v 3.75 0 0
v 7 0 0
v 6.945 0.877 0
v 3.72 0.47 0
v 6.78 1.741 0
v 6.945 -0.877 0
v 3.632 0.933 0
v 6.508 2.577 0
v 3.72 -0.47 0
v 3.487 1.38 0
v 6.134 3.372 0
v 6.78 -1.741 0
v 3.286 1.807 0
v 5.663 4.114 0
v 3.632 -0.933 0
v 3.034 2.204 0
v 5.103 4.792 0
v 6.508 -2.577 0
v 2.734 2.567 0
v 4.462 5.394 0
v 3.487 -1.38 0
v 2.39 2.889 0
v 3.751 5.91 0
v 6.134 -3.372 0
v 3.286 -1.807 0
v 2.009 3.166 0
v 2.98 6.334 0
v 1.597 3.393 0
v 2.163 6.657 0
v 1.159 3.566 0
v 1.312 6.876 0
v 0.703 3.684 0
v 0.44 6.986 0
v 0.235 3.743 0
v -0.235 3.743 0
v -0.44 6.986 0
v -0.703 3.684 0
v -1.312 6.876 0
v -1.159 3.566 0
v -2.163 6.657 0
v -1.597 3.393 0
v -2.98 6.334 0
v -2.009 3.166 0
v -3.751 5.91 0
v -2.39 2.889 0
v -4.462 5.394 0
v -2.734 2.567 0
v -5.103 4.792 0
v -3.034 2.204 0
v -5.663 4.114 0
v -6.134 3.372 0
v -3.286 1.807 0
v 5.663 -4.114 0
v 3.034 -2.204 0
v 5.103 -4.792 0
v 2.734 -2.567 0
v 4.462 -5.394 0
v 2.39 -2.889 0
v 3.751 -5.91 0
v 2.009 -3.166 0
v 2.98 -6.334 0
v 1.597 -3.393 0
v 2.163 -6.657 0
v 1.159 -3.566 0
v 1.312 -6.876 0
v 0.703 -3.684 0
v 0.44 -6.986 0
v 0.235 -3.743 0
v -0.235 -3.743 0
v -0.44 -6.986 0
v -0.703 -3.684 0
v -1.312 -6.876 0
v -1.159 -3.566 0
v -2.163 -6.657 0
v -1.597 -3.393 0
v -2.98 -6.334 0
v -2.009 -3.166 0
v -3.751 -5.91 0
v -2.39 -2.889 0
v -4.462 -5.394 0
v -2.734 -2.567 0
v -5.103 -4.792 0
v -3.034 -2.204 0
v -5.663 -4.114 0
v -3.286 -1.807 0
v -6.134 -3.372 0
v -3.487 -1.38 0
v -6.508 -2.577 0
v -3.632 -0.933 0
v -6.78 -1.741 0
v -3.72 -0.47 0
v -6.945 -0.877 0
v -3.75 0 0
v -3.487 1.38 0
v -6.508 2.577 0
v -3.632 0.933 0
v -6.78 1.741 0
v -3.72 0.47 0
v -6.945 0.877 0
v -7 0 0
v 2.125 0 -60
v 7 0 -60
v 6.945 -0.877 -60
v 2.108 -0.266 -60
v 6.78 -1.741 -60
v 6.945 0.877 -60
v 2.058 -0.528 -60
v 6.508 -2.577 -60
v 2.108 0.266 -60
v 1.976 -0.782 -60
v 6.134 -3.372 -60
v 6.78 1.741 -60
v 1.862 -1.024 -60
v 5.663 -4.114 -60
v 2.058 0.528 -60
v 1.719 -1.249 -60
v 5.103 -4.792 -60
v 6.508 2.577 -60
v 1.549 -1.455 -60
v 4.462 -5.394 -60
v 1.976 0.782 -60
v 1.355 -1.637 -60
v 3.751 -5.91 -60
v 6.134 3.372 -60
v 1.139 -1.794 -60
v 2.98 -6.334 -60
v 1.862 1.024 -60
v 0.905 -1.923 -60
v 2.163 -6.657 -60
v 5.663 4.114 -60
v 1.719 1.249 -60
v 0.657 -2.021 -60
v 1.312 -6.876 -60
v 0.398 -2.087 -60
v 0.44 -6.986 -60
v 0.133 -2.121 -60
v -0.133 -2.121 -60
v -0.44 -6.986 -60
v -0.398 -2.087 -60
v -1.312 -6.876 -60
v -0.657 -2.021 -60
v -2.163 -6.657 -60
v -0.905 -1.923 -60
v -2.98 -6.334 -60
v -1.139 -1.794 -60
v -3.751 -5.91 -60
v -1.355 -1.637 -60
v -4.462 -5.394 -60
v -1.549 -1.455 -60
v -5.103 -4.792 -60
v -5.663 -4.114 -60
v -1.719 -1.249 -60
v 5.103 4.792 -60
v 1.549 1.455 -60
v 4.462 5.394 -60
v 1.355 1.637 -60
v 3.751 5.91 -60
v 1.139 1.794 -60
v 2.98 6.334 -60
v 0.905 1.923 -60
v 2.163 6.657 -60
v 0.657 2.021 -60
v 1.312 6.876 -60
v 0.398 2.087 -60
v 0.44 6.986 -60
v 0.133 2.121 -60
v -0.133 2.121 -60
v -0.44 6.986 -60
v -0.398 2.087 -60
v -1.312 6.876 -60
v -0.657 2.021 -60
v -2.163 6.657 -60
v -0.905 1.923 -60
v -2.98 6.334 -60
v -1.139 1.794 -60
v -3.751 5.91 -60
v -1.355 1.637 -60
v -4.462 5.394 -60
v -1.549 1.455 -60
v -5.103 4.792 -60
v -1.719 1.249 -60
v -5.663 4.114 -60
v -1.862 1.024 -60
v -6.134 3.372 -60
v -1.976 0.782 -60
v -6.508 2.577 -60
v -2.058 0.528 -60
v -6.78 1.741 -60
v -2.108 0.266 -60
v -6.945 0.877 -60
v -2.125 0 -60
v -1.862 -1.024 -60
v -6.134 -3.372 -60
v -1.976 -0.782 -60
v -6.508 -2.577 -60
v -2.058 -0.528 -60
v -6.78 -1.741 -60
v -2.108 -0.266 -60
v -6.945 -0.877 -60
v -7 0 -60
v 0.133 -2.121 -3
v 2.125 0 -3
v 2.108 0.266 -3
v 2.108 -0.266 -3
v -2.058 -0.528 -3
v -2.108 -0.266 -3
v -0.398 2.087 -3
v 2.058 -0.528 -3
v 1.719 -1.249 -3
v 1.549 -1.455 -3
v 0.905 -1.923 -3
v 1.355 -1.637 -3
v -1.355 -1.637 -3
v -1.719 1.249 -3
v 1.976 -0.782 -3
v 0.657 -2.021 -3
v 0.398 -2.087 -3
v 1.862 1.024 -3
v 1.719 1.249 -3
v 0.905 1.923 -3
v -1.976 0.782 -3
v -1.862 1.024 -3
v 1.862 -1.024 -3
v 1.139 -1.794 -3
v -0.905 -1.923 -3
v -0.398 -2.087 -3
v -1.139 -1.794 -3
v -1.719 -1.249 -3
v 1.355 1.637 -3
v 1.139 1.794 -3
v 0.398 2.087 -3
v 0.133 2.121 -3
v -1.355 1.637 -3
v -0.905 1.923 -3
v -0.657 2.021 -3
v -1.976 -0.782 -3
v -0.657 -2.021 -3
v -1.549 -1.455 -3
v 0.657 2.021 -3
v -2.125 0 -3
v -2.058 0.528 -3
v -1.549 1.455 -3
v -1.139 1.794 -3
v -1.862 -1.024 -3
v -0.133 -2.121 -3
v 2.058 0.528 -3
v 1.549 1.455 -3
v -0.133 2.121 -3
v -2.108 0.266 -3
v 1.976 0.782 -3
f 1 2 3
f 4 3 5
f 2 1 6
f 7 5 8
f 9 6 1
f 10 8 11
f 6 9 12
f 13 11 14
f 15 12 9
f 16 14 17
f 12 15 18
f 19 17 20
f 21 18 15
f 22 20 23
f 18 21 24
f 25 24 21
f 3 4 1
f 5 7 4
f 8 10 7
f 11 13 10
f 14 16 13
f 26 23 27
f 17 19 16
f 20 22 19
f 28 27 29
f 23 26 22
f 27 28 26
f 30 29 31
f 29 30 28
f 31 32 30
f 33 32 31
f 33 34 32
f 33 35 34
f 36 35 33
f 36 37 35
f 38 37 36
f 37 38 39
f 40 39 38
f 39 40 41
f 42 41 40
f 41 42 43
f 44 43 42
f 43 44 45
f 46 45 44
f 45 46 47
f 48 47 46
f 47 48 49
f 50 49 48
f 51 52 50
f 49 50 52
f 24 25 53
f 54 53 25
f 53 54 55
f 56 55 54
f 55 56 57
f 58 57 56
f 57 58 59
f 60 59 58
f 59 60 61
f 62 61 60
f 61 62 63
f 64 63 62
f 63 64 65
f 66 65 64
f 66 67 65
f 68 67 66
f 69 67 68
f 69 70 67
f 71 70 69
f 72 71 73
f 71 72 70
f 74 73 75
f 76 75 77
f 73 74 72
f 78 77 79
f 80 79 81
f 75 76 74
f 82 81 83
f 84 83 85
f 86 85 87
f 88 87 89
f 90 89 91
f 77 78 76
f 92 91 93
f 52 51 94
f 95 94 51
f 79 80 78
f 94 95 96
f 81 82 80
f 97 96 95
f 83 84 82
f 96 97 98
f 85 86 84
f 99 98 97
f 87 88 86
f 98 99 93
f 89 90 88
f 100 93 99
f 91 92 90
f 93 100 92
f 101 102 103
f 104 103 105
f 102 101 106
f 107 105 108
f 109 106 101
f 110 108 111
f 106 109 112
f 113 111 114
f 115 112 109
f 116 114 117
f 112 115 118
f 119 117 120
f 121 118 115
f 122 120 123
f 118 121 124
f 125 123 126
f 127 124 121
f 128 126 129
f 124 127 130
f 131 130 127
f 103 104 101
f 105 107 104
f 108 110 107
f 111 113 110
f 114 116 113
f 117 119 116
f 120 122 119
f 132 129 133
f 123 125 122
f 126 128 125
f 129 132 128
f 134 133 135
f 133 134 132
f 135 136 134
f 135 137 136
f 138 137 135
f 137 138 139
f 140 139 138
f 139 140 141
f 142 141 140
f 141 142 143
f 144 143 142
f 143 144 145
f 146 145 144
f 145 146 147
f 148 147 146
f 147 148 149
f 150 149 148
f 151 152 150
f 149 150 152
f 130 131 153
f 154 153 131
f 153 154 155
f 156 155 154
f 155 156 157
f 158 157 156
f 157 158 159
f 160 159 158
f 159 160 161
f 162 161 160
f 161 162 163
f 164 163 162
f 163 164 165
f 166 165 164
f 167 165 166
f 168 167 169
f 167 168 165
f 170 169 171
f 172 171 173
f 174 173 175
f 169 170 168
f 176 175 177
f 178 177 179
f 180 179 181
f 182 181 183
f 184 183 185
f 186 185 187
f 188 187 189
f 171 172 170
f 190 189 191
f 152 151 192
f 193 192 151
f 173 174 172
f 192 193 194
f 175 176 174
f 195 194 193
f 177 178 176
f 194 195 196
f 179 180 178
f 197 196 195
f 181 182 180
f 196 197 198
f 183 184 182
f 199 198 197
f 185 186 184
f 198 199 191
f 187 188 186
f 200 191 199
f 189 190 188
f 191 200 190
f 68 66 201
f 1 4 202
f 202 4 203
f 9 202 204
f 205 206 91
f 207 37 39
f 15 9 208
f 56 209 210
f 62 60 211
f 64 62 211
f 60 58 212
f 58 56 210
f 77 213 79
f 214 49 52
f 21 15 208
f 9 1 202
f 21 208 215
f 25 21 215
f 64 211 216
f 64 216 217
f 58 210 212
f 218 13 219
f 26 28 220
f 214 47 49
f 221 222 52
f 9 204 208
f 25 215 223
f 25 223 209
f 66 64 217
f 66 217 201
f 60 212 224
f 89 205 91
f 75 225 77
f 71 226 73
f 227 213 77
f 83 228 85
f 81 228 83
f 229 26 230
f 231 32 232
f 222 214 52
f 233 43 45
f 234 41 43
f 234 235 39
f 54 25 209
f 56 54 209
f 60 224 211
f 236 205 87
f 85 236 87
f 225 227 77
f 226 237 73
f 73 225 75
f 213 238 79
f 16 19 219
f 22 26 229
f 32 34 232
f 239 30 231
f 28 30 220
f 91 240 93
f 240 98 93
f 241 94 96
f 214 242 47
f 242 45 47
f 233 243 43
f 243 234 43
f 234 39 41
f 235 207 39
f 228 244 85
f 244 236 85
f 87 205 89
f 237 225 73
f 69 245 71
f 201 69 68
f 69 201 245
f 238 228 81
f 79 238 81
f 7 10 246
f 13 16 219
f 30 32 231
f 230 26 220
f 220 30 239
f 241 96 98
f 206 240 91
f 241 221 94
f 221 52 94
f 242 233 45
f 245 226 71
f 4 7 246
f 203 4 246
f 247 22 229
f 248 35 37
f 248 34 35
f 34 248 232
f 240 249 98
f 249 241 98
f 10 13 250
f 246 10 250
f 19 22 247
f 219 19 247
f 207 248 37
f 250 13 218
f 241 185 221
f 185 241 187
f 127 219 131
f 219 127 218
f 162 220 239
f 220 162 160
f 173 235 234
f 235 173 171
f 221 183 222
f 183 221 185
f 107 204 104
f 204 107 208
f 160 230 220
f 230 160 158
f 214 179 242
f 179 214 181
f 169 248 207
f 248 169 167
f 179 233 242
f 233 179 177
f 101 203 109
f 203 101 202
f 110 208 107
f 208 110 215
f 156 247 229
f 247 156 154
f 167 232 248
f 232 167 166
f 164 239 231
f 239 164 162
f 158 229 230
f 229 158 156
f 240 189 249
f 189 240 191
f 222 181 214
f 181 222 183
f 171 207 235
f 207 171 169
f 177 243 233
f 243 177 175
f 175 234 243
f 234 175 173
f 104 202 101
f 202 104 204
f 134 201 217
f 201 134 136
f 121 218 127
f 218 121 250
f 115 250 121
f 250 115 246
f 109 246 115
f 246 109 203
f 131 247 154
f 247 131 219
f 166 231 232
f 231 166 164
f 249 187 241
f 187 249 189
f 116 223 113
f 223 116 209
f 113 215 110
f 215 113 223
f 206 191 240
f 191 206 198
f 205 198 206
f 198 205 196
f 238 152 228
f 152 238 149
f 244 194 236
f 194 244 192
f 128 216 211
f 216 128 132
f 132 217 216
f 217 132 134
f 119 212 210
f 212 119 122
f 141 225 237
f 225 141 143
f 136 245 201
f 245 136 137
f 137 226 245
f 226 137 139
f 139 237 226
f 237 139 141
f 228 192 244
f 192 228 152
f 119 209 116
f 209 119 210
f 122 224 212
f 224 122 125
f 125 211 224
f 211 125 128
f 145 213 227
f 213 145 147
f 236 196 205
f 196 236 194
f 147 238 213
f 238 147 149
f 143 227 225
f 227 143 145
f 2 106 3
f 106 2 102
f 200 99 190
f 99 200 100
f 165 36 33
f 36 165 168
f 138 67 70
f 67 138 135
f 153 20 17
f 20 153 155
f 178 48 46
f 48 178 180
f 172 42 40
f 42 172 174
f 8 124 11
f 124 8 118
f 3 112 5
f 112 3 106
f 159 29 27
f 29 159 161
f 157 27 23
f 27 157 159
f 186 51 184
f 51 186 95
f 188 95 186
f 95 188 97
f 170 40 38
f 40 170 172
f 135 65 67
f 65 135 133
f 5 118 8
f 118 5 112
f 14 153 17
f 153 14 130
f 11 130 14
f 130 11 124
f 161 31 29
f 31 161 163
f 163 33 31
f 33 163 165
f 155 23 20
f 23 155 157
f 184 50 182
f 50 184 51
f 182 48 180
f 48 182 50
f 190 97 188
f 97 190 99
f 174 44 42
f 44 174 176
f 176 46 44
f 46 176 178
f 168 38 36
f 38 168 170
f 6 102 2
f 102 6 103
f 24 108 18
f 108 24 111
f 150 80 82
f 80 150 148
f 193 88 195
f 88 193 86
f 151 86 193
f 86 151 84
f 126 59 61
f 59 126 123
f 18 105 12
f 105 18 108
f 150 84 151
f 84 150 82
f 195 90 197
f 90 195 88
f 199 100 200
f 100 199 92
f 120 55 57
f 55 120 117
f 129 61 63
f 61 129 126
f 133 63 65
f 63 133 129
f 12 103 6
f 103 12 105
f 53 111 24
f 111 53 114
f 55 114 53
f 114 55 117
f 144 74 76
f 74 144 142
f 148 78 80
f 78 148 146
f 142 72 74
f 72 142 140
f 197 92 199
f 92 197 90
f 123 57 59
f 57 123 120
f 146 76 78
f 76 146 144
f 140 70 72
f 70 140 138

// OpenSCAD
$fn = 50;


difference() {
	union() {
		translate(v = [0, 0, -60.0000000000]) {
			cylinder(h = 60, r = 7.0000000000);
		}
		cylinder(h = 0, r = 17.0000000000);
	}
	union() {
		translate(v = [0, 0, 0]) {
			rotate(a = [0, 0, 0]) {
				difference() {
					union() {
						#translate(v = [0, 0, -60.0000000000]) {
							cylinder(h = 60, r = 2.0000000000);
						}
						#translate(v = [0, 0, -3]) {
							cylinder(h = 3, r1 = 2.1250000000, r2 = 3.7500000000);
						}
						#translate(v = [0, 0, -60.0000000000]) {
							cylinder(h = 60, r = 2.1250000000);
						}
						#translate(v = [0, 0, -60.0000000000]) {
							cylinder(h = 60, r = 2.0000000000);
						}
					}
					union();
				}
			}
		}
	}
}
